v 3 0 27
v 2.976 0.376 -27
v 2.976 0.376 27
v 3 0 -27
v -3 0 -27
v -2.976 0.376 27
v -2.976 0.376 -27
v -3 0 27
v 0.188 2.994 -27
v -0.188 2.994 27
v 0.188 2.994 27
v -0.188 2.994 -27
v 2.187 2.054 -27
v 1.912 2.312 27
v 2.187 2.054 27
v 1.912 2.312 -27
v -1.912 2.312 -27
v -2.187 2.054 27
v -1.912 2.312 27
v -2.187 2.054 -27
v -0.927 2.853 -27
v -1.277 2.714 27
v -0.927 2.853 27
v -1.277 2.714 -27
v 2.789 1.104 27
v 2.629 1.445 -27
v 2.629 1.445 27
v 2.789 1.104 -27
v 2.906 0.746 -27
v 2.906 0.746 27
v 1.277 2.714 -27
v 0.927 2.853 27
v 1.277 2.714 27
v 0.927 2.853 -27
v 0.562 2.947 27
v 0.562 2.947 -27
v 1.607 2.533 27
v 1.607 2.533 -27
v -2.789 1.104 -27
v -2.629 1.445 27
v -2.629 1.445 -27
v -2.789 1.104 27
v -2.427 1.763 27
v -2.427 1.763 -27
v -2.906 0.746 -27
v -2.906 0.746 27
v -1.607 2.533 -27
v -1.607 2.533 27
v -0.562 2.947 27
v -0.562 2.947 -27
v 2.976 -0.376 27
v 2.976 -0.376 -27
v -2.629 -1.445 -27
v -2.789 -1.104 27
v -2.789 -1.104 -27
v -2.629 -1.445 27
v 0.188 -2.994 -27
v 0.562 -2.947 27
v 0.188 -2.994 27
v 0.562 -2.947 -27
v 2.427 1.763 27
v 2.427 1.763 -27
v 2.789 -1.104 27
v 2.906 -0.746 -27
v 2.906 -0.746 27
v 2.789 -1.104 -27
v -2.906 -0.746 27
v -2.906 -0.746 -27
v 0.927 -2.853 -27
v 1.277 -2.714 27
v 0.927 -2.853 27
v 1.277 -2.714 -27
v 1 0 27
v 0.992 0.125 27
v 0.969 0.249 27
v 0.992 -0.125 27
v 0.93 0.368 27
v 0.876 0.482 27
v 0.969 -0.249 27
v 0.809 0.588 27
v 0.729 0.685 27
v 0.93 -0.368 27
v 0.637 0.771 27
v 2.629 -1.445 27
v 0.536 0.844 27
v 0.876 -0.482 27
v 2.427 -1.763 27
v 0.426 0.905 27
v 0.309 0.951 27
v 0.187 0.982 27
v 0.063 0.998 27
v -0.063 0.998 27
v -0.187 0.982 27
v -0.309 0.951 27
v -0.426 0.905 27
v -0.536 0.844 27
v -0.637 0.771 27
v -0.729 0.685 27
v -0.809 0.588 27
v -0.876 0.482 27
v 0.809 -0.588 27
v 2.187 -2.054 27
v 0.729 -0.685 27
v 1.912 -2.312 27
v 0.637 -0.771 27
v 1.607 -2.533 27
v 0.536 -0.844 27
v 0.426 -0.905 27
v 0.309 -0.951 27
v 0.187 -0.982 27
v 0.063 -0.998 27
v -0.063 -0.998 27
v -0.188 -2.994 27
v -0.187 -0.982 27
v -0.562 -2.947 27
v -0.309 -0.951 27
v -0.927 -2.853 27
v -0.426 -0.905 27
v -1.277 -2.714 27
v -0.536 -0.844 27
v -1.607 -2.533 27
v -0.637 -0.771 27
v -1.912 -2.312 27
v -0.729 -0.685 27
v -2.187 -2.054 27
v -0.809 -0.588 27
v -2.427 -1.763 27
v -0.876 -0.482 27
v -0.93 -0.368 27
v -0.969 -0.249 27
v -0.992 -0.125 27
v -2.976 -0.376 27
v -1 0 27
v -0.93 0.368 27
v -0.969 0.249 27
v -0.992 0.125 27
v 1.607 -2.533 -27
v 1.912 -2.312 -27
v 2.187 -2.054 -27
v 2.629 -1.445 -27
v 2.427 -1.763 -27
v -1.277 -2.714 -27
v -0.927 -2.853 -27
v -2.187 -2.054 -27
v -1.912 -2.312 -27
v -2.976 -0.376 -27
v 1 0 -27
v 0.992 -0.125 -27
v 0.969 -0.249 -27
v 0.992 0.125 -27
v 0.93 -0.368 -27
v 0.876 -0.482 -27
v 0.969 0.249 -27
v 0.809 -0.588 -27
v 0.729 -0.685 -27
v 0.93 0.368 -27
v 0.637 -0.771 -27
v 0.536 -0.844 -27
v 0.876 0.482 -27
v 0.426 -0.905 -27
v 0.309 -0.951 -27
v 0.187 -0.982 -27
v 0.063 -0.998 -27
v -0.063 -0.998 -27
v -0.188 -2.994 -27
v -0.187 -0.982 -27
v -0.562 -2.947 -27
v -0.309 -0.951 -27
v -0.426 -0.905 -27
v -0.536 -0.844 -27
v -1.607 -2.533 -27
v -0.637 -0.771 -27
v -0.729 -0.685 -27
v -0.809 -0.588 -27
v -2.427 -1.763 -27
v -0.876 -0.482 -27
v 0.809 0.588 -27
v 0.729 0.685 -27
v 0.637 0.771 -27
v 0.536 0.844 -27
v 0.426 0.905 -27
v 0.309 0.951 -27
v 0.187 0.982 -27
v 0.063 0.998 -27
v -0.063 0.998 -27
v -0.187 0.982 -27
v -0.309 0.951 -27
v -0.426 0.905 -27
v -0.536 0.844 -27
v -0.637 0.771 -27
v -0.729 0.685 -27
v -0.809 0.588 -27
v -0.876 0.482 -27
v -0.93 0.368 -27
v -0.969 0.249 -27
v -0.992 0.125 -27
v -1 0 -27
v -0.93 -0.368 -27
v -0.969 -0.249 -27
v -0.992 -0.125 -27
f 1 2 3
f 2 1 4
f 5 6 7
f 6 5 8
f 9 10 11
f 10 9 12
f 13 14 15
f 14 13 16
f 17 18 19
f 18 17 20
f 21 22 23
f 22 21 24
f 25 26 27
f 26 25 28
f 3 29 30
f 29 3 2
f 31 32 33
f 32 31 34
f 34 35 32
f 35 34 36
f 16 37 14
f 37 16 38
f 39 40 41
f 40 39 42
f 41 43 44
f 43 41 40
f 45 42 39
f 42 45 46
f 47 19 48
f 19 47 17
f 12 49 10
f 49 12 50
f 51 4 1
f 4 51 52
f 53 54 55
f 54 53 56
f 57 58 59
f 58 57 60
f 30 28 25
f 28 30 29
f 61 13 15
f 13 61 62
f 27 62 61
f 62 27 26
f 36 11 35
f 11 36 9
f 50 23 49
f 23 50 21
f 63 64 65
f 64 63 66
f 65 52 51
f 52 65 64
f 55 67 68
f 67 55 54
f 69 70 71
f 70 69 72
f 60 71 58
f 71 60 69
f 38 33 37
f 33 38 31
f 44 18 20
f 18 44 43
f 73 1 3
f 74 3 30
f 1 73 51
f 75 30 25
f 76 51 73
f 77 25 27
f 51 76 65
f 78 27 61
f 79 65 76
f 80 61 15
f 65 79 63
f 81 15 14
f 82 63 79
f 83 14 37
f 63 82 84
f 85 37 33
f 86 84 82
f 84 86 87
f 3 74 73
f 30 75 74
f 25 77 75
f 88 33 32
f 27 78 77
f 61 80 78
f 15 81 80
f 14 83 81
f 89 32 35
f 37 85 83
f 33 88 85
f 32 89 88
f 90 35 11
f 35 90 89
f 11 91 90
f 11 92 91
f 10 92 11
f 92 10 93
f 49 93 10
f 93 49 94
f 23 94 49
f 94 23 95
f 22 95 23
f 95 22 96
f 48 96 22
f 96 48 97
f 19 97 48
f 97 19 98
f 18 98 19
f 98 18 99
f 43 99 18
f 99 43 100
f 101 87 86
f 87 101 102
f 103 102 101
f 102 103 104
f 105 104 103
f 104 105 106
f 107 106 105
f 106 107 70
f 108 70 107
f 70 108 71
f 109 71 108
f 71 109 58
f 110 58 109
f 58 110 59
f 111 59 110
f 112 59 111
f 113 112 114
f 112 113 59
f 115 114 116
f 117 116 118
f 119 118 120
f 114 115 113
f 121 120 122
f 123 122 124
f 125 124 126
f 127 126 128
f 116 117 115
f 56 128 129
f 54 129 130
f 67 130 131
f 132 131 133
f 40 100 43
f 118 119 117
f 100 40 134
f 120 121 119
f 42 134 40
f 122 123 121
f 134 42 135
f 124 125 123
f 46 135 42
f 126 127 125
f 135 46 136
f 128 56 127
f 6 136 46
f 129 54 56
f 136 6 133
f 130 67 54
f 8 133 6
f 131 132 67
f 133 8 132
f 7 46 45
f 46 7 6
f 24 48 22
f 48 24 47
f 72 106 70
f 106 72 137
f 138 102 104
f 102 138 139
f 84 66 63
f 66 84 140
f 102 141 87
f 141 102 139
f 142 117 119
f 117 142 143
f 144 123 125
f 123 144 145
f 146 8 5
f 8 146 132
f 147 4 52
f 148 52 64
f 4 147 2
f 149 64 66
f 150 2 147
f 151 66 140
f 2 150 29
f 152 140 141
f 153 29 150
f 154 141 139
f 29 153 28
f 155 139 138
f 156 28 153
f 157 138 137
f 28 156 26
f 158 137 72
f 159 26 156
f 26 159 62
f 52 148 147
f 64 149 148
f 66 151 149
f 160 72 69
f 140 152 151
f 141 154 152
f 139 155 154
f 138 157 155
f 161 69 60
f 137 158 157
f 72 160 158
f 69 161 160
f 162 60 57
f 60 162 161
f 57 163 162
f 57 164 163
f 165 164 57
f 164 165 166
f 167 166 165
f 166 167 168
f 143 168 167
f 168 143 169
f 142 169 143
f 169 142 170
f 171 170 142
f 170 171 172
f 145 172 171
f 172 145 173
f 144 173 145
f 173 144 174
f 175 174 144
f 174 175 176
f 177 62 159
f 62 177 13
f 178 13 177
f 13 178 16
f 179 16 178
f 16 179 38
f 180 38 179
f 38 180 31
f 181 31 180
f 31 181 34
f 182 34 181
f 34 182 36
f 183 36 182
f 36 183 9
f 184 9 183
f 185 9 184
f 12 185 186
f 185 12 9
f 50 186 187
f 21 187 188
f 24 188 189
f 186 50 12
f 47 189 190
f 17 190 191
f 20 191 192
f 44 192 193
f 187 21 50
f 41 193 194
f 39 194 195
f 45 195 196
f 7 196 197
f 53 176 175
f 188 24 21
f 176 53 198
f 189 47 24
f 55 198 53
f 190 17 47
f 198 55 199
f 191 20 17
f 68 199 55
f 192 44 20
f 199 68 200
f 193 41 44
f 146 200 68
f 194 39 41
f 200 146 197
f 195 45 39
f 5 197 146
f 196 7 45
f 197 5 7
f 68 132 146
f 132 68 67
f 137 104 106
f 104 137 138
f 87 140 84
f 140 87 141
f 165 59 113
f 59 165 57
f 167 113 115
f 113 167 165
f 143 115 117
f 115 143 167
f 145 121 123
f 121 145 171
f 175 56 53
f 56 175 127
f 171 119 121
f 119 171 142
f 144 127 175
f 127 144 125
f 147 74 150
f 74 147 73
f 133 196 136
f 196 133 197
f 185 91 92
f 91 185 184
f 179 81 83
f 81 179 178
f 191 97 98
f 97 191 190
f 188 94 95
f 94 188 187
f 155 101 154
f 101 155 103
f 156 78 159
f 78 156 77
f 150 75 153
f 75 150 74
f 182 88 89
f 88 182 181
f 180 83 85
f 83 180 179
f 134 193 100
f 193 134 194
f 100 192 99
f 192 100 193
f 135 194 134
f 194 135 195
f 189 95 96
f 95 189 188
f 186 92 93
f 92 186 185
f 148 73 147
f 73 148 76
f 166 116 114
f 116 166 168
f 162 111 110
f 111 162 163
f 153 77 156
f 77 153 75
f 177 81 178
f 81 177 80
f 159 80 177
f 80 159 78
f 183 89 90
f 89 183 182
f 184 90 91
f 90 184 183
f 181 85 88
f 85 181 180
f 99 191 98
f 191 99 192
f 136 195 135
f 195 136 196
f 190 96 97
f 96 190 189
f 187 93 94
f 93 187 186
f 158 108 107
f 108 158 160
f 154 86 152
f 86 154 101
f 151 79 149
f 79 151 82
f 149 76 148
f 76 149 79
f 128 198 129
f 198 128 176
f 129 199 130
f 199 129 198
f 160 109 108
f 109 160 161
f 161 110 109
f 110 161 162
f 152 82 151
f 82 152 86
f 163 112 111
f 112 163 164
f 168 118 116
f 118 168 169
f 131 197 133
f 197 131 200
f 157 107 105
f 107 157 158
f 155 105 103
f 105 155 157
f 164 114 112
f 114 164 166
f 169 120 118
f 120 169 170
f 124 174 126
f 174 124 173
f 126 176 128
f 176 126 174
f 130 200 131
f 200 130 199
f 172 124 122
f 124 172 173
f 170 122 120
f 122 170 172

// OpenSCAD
$fn = 50;


difference() {
	union() {
		translate(v = [0, 0, -27.0000000000]) {
			cylinder(h = 54, r = 3.0000000000);
		}
	}
	union() {
		translate(v = [0, 0, -100.0000000000]) {
			cylinder(h = 200, r = 1.0000000000);
		}
	}
}
